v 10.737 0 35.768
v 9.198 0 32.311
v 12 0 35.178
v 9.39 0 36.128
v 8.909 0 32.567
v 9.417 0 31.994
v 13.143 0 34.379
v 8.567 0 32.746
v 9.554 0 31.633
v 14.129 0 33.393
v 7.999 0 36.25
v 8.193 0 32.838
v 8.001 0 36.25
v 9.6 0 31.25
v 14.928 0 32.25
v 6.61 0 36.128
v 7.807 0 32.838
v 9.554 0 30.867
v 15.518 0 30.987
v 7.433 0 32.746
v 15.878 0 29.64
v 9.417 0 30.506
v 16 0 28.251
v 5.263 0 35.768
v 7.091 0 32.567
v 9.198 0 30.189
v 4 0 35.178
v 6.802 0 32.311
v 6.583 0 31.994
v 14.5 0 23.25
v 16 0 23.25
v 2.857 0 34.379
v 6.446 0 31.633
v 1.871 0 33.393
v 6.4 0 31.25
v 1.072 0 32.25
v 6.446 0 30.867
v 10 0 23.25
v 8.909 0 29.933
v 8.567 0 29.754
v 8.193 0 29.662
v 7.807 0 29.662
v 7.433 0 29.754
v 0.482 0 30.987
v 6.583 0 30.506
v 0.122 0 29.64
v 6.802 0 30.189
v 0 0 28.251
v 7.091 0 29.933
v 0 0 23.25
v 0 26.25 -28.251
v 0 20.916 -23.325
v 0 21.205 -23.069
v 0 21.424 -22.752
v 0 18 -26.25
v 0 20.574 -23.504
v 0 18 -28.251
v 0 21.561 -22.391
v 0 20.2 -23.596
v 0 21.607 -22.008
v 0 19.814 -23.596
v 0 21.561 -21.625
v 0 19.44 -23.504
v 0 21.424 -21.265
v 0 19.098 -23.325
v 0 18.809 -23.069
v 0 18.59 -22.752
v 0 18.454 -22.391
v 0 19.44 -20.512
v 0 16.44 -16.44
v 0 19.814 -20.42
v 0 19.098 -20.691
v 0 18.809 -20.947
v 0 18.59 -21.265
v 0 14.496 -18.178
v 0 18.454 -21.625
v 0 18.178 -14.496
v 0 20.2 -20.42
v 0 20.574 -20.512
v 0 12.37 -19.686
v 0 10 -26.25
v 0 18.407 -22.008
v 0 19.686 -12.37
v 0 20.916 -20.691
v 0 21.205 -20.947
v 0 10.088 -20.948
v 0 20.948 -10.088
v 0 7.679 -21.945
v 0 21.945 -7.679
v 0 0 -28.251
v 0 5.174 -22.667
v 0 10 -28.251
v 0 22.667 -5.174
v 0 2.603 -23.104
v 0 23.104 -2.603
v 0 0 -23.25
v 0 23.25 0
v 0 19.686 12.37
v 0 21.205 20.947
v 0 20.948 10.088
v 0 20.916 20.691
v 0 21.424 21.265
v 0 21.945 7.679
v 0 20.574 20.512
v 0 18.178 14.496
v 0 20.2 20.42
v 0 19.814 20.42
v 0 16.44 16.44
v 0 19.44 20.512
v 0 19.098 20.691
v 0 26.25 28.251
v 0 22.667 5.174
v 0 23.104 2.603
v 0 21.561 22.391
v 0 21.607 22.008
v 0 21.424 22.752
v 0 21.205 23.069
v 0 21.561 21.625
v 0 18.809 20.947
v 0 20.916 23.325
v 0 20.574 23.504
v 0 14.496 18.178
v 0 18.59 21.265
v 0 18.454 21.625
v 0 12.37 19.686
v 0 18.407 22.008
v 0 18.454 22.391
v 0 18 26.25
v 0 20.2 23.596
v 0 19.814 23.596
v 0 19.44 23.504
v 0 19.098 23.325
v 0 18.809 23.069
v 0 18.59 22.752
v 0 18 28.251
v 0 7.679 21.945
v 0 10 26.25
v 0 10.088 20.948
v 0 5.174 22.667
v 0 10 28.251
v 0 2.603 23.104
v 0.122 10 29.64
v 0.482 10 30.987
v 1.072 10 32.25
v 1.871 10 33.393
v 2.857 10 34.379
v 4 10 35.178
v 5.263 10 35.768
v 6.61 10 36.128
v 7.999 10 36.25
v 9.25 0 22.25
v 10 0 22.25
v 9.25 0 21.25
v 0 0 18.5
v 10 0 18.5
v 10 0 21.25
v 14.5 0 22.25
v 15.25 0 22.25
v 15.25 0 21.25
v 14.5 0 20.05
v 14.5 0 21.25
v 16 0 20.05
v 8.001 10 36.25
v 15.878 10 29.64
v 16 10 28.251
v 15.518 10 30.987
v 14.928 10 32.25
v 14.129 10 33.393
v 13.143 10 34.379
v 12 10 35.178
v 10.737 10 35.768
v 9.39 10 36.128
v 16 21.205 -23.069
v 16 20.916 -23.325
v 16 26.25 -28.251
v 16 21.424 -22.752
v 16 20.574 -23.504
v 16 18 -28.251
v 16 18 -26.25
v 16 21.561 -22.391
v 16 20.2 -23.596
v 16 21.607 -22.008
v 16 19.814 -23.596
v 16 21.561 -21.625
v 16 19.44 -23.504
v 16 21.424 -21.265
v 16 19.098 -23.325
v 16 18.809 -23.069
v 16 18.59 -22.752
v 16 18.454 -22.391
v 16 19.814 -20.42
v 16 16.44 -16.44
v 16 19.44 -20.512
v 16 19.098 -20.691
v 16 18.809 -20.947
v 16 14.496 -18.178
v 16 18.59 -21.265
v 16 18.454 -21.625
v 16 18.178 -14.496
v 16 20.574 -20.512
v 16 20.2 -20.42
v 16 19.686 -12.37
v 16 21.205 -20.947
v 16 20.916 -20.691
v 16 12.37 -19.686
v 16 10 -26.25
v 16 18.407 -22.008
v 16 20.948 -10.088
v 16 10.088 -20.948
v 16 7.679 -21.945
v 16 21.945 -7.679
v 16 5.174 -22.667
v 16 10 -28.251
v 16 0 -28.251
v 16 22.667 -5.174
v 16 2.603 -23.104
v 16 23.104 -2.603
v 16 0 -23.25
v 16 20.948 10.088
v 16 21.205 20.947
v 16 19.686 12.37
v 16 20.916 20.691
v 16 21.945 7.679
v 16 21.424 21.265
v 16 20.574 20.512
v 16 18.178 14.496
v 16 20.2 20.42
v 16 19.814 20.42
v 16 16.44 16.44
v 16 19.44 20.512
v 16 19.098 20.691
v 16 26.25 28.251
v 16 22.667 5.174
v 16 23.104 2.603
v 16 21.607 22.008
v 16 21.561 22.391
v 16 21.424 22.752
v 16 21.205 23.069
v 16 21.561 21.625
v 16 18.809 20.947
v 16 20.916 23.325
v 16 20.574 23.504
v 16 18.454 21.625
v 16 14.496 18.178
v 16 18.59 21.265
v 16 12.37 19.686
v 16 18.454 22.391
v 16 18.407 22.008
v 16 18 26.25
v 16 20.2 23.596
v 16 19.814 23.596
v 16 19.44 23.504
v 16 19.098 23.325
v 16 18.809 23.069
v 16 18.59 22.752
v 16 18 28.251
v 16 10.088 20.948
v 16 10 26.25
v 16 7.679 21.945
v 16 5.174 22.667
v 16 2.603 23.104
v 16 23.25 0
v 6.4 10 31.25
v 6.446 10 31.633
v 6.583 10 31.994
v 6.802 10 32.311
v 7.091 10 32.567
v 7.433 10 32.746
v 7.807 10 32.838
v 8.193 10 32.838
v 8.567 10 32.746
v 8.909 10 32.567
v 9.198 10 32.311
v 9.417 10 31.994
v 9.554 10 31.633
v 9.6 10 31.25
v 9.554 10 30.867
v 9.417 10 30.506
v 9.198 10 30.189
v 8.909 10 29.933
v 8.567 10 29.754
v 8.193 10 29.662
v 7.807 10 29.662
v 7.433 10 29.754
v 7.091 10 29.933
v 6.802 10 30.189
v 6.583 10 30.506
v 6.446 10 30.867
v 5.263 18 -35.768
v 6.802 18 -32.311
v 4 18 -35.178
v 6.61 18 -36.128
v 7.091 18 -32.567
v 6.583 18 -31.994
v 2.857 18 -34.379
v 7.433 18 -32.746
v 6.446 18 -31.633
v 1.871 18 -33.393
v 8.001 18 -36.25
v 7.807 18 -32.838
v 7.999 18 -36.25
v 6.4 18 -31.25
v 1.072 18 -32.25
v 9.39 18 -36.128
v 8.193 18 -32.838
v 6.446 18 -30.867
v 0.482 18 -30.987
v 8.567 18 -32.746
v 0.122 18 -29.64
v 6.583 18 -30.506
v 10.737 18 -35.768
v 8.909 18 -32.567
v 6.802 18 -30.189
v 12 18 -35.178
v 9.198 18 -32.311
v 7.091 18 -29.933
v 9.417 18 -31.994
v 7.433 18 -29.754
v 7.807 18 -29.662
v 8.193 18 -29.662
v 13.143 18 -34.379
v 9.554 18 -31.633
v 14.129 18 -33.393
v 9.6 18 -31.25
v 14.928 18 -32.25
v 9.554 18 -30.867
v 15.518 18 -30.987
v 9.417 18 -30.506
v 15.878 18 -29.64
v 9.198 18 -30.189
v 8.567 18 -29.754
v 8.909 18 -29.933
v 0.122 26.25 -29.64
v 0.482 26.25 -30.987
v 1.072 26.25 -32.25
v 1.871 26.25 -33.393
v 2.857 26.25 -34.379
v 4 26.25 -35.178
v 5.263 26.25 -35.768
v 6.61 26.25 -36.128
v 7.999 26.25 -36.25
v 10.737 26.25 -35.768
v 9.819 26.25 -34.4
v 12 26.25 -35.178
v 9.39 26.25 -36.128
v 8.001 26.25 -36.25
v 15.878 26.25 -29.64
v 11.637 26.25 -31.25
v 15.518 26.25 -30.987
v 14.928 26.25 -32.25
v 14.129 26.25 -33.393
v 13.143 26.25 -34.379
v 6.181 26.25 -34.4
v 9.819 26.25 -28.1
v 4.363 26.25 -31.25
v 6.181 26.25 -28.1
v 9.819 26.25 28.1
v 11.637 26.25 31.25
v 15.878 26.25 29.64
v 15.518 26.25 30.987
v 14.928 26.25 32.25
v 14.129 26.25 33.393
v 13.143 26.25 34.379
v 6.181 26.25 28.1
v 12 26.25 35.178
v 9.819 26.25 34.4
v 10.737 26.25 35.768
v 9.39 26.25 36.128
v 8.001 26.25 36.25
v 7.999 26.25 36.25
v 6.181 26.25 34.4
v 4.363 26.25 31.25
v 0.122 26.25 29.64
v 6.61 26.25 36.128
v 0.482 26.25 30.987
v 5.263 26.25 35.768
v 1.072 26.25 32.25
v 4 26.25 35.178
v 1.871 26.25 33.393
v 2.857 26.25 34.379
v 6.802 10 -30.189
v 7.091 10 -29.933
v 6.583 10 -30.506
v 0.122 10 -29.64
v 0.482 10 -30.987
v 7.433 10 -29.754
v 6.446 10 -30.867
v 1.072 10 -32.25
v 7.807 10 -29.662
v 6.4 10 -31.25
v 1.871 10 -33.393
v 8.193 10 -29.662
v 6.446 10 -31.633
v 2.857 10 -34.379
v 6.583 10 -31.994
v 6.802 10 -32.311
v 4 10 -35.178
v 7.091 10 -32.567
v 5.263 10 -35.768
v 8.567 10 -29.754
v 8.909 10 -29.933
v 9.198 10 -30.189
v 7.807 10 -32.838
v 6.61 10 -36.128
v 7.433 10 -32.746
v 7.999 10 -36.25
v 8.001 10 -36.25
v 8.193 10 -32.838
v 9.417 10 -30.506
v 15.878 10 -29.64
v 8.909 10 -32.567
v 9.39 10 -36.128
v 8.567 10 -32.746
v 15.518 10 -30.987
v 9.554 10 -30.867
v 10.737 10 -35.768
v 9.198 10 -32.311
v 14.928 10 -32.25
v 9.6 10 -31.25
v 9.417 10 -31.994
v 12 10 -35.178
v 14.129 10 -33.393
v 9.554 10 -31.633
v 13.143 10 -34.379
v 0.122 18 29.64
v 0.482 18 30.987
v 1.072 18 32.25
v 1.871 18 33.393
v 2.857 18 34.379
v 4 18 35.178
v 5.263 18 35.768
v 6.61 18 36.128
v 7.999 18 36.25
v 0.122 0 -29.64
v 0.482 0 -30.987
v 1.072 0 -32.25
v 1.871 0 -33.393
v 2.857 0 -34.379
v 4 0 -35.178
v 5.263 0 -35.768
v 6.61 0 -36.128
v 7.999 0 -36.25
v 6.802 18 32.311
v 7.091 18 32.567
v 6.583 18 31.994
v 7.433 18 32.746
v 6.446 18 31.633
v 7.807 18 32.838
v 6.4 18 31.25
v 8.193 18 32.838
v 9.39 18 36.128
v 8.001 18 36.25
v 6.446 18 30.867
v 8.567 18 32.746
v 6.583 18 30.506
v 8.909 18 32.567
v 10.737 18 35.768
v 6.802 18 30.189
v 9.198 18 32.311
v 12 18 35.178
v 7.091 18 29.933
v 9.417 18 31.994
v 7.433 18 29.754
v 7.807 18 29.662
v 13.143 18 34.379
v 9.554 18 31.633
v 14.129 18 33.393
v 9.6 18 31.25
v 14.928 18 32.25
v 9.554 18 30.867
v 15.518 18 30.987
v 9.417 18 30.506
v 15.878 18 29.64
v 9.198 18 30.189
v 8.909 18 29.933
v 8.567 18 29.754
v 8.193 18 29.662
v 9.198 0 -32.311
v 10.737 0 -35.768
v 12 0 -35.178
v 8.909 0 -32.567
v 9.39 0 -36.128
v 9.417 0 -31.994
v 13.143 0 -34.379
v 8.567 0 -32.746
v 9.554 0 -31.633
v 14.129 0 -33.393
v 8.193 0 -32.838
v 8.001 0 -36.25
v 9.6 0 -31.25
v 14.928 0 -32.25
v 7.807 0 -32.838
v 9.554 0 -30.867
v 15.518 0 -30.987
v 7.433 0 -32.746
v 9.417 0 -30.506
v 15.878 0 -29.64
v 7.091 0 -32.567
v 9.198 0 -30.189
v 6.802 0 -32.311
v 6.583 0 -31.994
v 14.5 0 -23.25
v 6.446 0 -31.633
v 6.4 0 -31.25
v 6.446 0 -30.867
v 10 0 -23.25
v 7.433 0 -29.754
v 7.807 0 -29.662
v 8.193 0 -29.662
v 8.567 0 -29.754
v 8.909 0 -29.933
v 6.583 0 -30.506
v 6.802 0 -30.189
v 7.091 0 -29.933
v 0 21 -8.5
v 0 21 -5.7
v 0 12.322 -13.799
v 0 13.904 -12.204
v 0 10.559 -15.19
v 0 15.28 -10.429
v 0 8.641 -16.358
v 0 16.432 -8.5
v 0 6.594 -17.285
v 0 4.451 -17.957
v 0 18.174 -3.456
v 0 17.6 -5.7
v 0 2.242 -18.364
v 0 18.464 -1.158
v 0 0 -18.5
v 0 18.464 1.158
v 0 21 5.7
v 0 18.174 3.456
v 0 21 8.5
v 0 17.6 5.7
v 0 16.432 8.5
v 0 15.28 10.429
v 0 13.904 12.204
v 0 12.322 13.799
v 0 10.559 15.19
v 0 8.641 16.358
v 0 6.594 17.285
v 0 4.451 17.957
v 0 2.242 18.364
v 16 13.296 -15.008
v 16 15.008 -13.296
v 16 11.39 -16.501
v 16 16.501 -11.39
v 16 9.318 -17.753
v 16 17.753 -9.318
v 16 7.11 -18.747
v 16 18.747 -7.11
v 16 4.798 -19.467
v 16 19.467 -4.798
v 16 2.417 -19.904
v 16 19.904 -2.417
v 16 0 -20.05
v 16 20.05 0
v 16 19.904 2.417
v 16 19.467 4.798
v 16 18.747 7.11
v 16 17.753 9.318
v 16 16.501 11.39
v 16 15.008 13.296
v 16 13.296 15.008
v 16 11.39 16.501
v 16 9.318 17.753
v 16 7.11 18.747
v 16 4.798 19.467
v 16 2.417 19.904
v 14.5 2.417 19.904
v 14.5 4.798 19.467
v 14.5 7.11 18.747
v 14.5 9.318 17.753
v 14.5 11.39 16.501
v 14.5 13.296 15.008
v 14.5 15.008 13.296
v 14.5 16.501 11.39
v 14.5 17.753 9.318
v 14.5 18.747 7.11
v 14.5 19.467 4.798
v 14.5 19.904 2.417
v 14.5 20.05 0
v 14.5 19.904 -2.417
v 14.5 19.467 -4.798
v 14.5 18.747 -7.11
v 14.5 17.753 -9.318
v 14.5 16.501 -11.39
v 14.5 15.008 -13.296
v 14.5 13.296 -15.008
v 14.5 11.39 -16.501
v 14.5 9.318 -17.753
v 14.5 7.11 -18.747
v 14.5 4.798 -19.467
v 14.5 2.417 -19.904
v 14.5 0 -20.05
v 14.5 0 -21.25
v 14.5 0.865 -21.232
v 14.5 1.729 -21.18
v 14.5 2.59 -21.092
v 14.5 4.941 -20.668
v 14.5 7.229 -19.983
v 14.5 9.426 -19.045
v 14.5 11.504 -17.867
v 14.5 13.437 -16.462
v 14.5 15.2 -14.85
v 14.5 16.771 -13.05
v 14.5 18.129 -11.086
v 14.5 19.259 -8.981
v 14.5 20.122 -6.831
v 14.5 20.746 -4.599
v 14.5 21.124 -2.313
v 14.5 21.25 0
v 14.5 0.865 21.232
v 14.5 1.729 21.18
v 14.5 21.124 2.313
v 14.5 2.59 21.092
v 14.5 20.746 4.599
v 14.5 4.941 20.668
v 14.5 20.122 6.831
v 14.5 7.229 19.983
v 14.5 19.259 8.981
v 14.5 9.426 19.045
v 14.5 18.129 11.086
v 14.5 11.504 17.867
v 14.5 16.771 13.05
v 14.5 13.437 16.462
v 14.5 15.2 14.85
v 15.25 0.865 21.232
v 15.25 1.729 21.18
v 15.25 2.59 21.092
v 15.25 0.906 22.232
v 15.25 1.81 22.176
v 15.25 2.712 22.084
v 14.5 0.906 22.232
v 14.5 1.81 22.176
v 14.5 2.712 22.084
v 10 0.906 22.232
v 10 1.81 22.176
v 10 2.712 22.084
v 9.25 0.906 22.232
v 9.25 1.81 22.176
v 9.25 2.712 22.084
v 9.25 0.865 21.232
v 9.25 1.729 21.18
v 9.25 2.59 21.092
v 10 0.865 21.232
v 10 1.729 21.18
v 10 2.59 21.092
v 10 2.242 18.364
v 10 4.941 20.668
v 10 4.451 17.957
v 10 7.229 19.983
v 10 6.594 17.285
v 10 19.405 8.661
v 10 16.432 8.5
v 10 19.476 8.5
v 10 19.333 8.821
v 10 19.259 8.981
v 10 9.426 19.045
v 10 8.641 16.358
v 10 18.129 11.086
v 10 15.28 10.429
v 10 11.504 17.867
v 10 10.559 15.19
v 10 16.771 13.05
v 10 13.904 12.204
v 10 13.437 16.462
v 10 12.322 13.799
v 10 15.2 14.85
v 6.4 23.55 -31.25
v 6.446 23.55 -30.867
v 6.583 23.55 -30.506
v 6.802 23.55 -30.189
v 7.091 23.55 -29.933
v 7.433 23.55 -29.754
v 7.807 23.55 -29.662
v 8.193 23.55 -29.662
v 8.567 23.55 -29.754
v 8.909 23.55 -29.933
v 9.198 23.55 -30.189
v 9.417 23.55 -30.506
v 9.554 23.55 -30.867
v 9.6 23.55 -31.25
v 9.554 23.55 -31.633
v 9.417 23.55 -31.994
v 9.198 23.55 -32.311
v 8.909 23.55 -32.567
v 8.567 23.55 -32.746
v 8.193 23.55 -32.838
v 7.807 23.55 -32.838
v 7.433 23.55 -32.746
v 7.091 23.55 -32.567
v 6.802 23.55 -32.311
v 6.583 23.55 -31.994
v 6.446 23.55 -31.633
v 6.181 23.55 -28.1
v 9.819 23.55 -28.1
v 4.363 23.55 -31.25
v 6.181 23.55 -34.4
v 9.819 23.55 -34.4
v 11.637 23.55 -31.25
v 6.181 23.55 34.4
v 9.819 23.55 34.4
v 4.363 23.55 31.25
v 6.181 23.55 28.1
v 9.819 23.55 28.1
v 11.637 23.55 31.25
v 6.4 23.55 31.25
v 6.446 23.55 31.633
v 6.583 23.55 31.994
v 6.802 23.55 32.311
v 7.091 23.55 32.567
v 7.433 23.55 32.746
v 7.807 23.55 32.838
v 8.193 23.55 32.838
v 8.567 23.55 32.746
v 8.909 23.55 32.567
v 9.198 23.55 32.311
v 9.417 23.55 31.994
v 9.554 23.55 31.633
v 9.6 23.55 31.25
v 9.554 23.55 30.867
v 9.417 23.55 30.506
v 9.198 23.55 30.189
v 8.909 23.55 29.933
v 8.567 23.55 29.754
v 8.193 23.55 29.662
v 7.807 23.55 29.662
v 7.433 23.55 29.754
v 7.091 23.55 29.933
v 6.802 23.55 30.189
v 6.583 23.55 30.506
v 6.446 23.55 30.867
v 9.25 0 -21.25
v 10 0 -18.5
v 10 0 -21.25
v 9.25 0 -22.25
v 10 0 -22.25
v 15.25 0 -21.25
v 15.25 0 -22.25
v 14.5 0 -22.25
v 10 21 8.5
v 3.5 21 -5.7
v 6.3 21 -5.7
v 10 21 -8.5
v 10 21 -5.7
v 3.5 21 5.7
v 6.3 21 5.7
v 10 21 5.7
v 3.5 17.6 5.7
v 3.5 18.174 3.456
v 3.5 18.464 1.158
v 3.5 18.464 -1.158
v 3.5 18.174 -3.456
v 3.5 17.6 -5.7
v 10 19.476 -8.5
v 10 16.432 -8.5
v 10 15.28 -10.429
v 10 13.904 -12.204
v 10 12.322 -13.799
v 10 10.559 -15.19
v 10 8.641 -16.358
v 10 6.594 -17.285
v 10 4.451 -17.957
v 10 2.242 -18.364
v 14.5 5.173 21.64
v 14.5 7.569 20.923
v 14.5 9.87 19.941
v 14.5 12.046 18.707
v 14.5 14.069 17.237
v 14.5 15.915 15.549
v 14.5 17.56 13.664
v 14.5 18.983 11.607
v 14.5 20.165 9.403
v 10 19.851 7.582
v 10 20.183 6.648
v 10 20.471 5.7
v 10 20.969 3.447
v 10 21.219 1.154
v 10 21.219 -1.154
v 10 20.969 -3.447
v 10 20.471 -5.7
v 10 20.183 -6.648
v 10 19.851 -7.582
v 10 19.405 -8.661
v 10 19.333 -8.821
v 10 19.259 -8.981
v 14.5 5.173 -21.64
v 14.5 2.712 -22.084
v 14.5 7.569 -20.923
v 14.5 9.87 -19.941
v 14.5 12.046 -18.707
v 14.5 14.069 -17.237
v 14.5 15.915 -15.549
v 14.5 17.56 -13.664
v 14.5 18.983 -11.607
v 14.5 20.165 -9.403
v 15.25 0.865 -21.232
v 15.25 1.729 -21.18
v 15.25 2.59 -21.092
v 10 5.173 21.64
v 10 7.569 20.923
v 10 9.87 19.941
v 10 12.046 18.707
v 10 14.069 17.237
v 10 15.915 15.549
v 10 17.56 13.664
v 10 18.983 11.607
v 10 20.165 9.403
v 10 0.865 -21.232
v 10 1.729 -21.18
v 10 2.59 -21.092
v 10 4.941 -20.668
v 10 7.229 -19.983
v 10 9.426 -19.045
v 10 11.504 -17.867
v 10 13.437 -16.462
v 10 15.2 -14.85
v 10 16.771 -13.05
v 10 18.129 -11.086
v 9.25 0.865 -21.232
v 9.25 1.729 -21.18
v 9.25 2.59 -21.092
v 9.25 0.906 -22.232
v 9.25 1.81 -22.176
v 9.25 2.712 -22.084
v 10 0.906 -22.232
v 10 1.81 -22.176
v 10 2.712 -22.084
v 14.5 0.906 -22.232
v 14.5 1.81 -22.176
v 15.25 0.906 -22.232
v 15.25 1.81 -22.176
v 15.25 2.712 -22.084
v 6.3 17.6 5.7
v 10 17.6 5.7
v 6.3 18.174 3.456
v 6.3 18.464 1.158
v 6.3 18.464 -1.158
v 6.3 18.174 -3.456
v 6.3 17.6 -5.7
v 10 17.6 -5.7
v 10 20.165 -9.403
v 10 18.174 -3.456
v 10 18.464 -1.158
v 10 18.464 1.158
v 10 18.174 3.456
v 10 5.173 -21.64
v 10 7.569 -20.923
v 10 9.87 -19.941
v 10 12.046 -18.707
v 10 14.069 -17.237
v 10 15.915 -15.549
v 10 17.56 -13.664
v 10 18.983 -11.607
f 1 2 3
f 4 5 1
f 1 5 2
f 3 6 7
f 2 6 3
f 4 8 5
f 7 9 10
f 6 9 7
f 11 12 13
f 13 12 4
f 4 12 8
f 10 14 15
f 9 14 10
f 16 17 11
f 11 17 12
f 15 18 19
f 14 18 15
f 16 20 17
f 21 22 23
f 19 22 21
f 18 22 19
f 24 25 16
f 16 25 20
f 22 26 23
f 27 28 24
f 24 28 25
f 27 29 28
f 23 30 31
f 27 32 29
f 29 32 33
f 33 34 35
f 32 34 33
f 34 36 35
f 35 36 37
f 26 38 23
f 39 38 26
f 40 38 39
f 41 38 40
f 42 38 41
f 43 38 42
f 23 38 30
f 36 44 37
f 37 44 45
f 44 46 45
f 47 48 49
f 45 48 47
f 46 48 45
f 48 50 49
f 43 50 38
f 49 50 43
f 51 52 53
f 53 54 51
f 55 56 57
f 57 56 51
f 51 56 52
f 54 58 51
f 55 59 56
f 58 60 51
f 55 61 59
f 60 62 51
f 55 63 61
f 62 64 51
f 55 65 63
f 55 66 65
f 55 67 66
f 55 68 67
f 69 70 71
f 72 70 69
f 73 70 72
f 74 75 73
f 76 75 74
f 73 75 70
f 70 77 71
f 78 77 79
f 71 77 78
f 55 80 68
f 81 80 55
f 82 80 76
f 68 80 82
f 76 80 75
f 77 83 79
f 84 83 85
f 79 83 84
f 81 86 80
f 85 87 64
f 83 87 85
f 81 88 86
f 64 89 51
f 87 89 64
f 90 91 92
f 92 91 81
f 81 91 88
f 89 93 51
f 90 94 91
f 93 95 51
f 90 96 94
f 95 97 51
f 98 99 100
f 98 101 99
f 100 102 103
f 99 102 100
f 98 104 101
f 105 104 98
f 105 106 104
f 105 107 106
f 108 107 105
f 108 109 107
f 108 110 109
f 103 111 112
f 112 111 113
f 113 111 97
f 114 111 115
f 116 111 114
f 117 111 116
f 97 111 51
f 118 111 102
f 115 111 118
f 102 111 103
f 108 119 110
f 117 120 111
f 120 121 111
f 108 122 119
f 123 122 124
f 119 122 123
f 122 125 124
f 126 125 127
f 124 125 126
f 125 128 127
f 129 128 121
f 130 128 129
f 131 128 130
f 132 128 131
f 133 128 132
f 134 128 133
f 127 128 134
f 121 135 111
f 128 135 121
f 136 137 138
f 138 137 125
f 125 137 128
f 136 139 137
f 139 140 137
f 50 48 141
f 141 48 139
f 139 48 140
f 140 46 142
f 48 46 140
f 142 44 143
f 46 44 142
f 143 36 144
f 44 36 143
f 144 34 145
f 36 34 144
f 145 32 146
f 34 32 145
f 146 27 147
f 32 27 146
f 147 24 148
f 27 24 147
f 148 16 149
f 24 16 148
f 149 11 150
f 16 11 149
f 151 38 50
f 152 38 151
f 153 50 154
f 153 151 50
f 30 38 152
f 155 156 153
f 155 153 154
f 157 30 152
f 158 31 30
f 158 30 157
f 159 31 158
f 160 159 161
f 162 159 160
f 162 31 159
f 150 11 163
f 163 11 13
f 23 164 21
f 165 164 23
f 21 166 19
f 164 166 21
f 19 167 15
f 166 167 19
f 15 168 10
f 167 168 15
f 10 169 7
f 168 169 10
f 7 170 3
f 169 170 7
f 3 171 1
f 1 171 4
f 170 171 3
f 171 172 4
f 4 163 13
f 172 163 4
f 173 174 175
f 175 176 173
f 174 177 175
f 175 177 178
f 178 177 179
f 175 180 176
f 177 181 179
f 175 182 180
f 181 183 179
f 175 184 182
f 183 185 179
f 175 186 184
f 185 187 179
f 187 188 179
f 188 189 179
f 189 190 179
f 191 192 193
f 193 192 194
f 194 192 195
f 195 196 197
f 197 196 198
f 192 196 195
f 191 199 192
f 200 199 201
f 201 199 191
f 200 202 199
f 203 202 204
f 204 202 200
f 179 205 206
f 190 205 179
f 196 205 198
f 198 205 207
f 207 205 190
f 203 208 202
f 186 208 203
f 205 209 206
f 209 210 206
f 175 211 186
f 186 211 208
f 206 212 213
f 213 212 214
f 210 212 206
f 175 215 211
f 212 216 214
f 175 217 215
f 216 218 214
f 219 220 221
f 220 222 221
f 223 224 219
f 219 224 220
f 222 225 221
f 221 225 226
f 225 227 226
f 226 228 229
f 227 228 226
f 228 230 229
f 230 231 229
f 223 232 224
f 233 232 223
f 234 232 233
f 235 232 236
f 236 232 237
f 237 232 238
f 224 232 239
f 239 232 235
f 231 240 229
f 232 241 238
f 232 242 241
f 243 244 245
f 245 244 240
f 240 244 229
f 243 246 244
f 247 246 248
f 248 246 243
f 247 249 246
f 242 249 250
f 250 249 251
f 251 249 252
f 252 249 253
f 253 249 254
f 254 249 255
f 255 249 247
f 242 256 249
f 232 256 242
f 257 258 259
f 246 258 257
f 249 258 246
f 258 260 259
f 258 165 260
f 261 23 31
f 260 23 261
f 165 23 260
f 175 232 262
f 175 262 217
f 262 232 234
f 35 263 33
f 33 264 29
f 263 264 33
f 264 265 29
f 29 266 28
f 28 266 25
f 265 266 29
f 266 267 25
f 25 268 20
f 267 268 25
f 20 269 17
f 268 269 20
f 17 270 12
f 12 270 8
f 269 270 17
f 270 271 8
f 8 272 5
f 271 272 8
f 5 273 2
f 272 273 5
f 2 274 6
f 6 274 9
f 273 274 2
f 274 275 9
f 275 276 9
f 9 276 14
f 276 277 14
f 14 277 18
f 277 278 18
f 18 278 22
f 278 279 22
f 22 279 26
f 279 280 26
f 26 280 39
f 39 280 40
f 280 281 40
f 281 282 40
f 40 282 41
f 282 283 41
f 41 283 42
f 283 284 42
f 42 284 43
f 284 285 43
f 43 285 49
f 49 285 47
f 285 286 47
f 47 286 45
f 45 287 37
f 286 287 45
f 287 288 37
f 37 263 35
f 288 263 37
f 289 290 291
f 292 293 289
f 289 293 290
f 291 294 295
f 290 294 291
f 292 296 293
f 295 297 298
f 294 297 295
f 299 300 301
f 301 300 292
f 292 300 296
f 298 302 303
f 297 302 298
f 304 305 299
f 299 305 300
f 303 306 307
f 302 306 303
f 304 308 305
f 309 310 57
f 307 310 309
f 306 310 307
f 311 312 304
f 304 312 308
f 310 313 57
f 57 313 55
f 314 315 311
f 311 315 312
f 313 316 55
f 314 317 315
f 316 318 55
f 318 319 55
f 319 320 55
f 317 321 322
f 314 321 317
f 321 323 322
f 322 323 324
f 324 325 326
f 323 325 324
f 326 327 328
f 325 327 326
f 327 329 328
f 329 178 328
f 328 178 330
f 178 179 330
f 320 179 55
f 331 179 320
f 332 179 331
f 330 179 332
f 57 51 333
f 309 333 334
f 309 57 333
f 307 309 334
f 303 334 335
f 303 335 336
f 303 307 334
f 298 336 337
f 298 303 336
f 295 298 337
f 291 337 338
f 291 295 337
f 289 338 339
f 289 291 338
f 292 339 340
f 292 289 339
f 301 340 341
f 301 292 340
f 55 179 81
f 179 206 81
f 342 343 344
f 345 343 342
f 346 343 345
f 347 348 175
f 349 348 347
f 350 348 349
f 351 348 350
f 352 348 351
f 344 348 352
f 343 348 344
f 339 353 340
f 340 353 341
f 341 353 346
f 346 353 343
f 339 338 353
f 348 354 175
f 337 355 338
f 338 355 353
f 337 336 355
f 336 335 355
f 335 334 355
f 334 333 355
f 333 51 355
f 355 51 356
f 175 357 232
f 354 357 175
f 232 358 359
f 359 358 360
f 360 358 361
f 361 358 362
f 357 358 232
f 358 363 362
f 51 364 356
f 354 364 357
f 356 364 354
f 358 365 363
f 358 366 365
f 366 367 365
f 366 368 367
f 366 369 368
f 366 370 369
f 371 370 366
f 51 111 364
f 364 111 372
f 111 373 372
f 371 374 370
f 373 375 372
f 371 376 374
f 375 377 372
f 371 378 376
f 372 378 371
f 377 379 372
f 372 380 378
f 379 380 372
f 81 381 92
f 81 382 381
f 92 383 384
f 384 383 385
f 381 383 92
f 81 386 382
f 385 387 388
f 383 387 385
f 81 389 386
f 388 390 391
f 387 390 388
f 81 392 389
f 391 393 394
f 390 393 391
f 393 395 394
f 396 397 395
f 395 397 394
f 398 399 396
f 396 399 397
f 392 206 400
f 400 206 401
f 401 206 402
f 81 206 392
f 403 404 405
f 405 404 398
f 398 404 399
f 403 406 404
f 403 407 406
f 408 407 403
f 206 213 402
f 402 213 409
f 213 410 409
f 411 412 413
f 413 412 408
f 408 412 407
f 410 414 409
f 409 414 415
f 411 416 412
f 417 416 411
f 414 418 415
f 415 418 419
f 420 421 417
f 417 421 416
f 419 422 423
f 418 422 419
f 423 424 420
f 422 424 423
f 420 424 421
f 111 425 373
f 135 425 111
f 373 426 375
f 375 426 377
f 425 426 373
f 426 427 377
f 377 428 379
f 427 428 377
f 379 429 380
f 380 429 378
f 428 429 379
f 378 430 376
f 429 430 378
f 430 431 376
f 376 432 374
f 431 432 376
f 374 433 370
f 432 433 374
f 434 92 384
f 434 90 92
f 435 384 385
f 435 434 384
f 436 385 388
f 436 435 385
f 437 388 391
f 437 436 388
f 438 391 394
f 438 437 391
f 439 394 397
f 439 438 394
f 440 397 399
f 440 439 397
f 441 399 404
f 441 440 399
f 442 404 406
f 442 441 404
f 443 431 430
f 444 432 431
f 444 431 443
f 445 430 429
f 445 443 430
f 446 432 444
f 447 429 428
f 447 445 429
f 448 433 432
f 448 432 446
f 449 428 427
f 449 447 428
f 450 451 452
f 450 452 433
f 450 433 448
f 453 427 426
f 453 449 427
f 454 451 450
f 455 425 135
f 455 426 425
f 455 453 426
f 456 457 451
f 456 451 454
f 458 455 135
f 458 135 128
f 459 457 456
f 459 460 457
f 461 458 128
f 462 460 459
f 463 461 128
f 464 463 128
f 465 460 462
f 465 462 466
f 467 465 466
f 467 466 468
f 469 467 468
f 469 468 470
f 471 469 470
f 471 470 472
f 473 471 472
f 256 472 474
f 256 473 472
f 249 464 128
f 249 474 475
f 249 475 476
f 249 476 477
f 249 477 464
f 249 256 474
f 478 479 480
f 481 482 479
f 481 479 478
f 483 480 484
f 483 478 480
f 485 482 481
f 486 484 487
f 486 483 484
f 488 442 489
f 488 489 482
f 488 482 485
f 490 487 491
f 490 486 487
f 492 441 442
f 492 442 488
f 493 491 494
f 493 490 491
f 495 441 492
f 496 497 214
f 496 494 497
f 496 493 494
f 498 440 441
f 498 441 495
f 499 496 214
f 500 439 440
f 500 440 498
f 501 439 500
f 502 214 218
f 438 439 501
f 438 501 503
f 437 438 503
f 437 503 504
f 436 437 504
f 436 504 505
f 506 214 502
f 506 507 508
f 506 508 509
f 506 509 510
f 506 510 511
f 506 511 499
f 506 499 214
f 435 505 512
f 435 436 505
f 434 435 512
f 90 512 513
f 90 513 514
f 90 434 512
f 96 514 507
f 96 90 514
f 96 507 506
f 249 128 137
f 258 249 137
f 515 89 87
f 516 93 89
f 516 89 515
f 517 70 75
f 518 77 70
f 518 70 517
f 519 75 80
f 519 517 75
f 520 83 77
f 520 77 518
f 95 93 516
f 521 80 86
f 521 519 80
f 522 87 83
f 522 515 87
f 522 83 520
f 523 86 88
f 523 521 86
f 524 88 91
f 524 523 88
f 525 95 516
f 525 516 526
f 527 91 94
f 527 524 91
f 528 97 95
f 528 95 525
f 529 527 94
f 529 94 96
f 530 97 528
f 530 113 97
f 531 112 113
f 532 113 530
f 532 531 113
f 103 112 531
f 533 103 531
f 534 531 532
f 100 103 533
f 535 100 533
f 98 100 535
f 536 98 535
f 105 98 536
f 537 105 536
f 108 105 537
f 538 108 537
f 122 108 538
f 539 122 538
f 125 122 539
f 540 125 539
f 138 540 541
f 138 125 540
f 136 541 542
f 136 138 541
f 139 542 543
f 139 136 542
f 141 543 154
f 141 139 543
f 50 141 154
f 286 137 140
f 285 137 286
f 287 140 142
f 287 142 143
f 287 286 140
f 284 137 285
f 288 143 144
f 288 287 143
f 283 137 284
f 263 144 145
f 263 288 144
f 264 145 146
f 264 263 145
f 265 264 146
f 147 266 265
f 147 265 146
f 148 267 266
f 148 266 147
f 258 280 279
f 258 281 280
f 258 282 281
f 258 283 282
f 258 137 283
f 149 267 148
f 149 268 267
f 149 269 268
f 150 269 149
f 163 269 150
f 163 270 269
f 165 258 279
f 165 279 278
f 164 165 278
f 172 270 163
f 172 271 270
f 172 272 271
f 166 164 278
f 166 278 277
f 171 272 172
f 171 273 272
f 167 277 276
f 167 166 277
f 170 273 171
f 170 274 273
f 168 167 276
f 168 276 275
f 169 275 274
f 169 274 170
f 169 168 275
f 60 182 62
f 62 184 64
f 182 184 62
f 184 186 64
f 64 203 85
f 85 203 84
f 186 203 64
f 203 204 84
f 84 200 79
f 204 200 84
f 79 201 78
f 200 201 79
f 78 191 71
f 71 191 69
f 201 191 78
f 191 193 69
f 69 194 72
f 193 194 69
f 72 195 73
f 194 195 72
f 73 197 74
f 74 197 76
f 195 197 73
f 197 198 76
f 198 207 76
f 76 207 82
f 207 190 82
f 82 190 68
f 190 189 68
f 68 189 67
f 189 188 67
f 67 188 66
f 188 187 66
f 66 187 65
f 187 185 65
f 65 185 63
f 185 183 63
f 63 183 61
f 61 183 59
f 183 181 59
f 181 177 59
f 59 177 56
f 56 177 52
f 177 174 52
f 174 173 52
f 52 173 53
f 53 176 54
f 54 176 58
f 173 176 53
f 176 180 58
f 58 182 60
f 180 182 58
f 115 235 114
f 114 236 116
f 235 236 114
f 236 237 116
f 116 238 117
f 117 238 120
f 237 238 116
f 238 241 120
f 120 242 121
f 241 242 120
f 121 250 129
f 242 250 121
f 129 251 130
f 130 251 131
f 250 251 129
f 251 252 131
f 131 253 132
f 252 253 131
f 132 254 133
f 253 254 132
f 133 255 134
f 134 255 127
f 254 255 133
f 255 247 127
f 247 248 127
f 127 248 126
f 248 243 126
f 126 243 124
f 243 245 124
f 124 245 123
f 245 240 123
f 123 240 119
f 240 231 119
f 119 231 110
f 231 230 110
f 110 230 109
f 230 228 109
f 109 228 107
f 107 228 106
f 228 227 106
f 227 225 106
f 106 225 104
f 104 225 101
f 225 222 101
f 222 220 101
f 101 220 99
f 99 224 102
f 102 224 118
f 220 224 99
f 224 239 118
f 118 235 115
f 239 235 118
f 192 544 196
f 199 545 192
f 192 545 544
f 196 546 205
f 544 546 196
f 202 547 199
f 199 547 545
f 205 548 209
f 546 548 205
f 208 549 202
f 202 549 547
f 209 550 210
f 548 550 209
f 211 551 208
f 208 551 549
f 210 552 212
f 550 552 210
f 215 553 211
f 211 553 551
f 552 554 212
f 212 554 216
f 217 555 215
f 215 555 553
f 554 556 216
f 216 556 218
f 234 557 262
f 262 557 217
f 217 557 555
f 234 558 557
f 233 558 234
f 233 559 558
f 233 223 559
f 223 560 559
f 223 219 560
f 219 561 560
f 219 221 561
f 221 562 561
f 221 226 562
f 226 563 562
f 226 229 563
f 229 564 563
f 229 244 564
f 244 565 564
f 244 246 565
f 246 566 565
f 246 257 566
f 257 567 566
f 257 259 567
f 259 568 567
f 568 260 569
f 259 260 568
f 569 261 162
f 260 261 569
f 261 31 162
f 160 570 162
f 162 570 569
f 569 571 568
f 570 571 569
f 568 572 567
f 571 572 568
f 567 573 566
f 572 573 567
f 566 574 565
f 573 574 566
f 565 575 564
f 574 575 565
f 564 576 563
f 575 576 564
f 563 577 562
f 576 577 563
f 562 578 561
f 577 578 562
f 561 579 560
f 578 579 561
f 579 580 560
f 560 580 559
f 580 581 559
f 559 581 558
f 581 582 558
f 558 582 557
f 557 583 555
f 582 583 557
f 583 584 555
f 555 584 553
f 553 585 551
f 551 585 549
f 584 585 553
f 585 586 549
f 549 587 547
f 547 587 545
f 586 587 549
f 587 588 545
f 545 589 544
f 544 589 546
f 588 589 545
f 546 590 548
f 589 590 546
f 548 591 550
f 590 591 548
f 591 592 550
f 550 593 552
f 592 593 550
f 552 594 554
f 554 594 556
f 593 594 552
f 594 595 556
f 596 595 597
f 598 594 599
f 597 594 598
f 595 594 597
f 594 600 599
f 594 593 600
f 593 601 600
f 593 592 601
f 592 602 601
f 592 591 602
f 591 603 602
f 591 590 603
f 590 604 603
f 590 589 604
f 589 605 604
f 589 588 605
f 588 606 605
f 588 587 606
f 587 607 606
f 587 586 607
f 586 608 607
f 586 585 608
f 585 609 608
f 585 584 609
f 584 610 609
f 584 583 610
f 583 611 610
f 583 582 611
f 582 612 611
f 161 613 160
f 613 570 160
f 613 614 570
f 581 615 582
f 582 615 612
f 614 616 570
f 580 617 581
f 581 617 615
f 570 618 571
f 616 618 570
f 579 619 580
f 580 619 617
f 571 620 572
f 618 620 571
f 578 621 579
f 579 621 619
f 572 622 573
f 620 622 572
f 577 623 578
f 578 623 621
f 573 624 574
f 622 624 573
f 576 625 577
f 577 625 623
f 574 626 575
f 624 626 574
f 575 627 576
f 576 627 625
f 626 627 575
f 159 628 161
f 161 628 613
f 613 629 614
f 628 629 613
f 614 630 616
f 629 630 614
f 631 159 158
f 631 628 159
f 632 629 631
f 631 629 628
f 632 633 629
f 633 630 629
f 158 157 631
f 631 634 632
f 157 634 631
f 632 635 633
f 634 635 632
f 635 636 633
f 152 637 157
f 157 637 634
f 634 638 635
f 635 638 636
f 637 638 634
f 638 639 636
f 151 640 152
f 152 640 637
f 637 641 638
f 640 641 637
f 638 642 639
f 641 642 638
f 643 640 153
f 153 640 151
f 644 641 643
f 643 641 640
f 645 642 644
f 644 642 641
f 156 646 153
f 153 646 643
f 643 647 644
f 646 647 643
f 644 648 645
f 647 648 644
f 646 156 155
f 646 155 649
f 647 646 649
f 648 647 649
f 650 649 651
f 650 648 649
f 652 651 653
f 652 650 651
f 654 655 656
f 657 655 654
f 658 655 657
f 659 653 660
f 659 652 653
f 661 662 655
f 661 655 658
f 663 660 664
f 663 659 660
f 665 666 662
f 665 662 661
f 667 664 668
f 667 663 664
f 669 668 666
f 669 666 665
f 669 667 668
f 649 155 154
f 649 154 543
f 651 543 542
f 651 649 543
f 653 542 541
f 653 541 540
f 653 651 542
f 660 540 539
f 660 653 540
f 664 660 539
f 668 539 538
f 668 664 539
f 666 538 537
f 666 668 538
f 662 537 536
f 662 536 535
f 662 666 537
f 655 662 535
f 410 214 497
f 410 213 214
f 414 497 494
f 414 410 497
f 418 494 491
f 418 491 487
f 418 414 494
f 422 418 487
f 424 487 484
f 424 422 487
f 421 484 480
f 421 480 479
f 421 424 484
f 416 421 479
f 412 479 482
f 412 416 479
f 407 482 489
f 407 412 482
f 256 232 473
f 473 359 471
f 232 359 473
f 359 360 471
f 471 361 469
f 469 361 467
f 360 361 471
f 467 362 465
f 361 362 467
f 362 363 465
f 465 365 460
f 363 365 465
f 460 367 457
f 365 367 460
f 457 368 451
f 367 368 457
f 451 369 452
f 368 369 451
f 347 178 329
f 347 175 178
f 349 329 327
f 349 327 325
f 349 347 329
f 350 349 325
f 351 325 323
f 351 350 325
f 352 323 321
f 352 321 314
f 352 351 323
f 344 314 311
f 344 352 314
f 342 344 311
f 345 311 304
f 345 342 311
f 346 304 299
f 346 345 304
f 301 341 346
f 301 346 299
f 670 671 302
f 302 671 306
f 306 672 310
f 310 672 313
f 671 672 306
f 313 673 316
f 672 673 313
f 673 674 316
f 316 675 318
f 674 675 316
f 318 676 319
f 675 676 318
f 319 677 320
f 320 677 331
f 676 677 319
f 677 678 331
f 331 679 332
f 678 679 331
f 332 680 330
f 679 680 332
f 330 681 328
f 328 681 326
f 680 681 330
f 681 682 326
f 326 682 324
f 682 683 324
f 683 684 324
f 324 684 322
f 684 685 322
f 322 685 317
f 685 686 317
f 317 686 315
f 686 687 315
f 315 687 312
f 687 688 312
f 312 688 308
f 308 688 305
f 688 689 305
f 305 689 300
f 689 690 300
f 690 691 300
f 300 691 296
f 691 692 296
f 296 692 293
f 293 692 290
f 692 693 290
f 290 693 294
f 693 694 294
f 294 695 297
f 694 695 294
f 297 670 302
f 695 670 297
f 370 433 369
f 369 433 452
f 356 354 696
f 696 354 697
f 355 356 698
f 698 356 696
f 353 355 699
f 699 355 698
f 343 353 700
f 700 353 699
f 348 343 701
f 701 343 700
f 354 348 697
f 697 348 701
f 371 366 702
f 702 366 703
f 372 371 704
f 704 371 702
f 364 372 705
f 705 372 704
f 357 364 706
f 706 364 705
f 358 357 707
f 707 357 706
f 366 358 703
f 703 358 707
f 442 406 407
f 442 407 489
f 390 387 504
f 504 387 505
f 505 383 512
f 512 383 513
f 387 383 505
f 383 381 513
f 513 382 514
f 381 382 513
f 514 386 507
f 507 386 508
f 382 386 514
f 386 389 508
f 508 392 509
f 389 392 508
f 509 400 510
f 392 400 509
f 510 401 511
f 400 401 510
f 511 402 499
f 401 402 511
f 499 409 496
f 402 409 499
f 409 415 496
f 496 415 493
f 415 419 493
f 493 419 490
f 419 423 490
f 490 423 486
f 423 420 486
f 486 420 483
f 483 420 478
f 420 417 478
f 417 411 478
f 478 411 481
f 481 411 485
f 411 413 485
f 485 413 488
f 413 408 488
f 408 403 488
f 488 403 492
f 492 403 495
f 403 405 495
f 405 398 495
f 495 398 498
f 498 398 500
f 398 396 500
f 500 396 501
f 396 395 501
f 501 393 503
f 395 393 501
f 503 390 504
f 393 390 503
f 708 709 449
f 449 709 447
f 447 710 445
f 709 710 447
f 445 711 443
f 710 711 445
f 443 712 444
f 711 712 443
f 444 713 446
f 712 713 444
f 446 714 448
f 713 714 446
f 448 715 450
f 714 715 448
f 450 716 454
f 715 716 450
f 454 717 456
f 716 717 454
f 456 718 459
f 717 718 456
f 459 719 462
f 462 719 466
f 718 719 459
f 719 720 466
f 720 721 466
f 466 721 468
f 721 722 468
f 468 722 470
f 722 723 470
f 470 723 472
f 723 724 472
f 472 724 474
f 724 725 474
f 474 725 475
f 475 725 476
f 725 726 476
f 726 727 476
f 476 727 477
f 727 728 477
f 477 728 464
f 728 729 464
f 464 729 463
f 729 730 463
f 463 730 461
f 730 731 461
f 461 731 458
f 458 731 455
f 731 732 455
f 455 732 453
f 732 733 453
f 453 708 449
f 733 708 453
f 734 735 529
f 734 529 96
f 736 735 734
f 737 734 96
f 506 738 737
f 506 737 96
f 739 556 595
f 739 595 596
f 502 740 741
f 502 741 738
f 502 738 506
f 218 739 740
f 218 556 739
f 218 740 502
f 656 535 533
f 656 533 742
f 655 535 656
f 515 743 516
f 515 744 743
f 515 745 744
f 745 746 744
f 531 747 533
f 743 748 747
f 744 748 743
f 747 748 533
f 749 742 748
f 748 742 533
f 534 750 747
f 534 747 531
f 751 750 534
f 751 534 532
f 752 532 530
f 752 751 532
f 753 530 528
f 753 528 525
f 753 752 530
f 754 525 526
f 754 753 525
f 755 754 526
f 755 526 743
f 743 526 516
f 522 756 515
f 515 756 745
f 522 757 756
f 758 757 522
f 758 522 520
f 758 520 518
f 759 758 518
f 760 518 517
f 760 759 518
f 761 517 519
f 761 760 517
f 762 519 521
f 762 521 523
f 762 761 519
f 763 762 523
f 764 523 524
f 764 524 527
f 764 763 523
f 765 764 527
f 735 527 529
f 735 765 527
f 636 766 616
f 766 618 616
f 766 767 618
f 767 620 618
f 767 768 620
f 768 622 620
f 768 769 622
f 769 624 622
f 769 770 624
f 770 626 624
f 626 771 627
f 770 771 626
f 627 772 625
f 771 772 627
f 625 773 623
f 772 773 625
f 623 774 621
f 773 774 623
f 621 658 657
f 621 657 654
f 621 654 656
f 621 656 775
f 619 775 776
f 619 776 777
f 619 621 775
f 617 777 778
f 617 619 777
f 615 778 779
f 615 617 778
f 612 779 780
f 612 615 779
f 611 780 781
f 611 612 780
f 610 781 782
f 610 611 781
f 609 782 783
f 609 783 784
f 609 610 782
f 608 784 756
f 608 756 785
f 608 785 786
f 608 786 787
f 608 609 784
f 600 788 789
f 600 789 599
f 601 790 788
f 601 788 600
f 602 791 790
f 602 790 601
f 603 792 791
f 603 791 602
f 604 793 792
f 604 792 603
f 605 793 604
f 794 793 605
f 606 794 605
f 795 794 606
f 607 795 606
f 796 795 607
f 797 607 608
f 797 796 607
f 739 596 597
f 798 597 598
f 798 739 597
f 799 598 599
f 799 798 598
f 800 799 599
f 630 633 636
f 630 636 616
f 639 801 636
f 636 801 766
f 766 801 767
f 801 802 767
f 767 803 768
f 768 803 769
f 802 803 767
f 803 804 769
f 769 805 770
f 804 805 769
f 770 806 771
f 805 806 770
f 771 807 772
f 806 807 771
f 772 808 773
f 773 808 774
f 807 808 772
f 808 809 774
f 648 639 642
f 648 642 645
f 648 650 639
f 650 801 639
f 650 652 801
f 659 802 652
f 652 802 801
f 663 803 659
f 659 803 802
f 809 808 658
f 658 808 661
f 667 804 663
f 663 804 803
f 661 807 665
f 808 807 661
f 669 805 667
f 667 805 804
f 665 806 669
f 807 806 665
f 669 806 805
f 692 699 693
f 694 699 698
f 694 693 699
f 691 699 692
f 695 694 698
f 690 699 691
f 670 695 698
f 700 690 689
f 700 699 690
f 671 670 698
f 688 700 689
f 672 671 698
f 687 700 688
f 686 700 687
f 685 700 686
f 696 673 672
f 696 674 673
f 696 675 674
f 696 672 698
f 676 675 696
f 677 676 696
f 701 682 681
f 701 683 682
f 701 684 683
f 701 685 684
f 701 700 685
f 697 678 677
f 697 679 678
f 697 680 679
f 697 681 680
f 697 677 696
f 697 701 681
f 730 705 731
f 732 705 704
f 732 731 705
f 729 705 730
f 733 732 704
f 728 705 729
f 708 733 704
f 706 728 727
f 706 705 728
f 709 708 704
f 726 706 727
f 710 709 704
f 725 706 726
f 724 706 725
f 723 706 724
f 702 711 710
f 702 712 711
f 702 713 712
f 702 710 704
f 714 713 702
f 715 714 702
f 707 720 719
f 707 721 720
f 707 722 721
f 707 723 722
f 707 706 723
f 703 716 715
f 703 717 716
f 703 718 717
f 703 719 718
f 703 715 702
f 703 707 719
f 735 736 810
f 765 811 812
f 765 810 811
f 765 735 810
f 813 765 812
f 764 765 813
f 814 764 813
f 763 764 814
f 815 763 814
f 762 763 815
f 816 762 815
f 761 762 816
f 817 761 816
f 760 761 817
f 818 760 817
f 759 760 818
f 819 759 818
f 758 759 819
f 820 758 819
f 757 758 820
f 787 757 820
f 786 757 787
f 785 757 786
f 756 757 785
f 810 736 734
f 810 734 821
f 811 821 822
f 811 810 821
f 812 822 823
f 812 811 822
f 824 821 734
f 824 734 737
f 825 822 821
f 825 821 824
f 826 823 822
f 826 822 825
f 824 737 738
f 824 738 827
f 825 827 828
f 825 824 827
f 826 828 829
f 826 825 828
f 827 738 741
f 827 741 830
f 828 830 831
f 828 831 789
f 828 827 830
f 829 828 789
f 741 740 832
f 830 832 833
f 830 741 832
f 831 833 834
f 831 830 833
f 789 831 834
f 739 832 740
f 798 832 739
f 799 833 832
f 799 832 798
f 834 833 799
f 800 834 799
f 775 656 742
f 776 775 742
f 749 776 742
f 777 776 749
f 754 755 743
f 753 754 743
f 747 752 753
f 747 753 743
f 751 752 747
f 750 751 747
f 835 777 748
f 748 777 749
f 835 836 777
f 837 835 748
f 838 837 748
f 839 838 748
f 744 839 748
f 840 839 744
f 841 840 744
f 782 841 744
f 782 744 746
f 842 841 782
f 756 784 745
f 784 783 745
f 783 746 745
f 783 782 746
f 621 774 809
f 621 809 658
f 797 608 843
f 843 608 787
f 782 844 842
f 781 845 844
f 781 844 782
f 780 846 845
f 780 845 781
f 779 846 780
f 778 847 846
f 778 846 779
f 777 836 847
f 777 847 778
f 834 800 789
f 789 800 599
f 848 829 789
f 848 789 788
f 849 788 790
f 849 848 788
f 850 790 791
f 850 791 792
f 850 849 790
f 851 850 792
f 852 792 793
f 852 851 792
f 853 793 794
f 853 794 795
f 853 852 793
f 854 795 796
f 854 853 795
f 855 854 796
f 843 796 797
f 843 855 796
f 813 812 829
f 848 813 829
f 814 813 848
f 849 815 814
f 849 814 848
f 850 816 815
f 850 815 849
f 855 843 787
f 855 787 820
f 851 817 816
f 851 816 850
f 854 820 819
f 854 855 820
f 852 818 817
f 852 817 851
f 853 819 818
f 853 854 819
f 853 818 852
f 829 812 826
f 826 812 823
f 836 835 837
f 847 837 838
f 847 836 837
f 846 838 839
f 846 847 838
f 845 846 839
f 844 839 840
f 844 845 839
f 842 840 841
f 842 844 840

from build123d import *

# Parameters (mm, degrees)
SKETCH001_W     = 23.25
SKETCH001_H     = 46.5
POCKET_DEPTH    = 16.001
POCKET001_DEPTH = 21
SKETCH003_W     = 4.5
SKETCH003_H     = 1
GROOVE_ANGLE    = 65
SKETCH004_W     = 6
SKETCH004_H     = 1
GROOVE001_ANGLE = 7
PAD_DEPTH       = 16
SKETCH006_W     = 8
SKETCH006_H     = 10
POCKET002_DEPTH = 16.001
SKETCH007_R     = 1.6
POCKET003_DEPTH = 26.251
POCKET004_DEPTH = 2.7
FILLET_R        = 7.999
SKETCH009_R     = 1.6
POCKET005_DEPTH = 16.001


with BuildPart() as part:
    # Sketch → Revolution (revolve)
    with BuildSketch(Plane.XY):
        Polygon((0, -18.5), (10, -18.5), (10, -21.25), (14.5, -21.25), (14.5, -20.05), (16, -20.05), (16, -23.25), (14.5, -23.25), (10, -23.25), (0, -23.25), align=None)
    revolve(axis=Axis((0, 0, 0), (1, 0, 0)))

    # Sketch001 (on Face9 of Revolution) → Pocket (cut, through all)
    with BuildSketch(Plane.YZ.offset(16)):
        with Locations((-11.625, 0)):
            Rectangle(SKETCH001_W, SKETCH001_H)
    extrude(amount=-POCKET_DEPTH, mode=Mode.SUBTRACT)

    # Sketch002 (on Face2 of Pocket) → Pocket001 (cut)
    with BuildSketch(Plane.XZ):
        Polygon((0, 8.5), (10, 8.5), (10, 5.7), (6.3, 5.7), (6.3, -5.7), (10, -5.7), (10, -8.5), (0, -8.5), (0, -5.7), (3.5, -5.7), (3.5, 5.7), (0, 5.7), align=None)
    extrude(amount=-POCKET001_DEPTH, mode=Mode.SUBTRACT)

    # Sketch003 (on Face4 of Pocket001) → Groove (revolve, cut)
    with BuildSketch(Plane.XZ):
        with Locations((12.25, -21.75)):
            Rectangle(SKETCH003_W, SKETCH003_H)
    groove = revolve(axis=Axis((0, 0, 0), (1, 0, 0)), revolution_arc=GROOVE_ANGLE, mode=Mode.SUBTRACT)

    # Sketch004 (on Face4 of Groove) → Groove001 (revolve, cut)
    with BuildSketch(Plane.XZ):
        with Locations((12.25, -21.75)):
            Rectangle(SKETCH004_W, SKETCH004_H)
    groove001 = revolve(axis=Axis((0, 0, 0), (1, 0, 0)), revolution_arc=GROOVE001_ANGLE, mode=Mode.SUBTRACT)

    # Sketch005 (on Face12 of Groove001) → Pad (join)
    with BuildSketch(Plane(origin=(0, 0, 0), x_dir=(0, -1, 0), z_dir=(-1, 0, 0))):
        with BuildLine():
            ThreePointArc((0, 23.25), (-23.25, 0), (0, -23.25))
            Line((0, -36.25), (0, -23.25))
            Line((-26.25, -36.25), (0, -36.25))
            Line((-26.25, -36.25), (-26.25, 36.25))
            Line((-26.25, 36.25), (0, 36.25))
            Line((0, 36.25), (0, 23.25))
        make_face()
    extrude(amount=-PAD_DEPTH)

    # Sketch006 (on Face11 of Pad) → Pocket002 (cut, through all)
    with BuildSketch(Plane.YZ.offset(16)):
        with Locations((14, 31.25)):
            Rectangle(SKETCH006_W, SKETCH006_H)
        with Locations((14, -31.25)):
            Rectangle(SKETCH006_W, SKETCH006_H)
    extrude(amount=-POCKET002_DEPTH, mode=Mode.SUBTRACT)

    # Sketch007 (on Face40 of Pocket002) → Pocket003 (cut, through all)
    with BuildSketch(Plane(origin=(0, 26.25, 0), x_dir=(-1, 0, 0), z_dir=(0, 1, 0))):
        with Locations((-8, 31.25)):
            Circle(SKETCH007_R)
        with Locations((-8, -31.25)):
            Circle(SKETCH007_R)
    extrude(amount=-POCKET003_DEPTH, mode=Mode.SUBTRACT)

    # Sketch008 (on Face41 of Pocket003) → Pocket004 (cut)
    with BuildSketch(Plane(origin=(0, 26.25, 0), x_dir=(-1, 0, 0), z_dir=(0, 1, 0))):
        Polygon((-9.818653, 34.4), (-11.637307, 31.25), (-9.818653, 28.1), (-6.181347, 28.1), (-4.362693, 31.25), (-6.181347, 34.4), align=None)
        Polygon((-9.818653, -28.1), (-11.637307, -31.25), (-9.818653, -34.4), (-6.181347, -34.4), (-4.362693, -31.25), (-6.181347, -28.1), align=None)
    extrude(amount=-POCKET004_DEPTH, mode=Mode.SUBTRACT)

    # Mirrored: Groove001, Groove across XY
    add(groove001.mirror(Plane.XY), mode=Mode.SUBTRACT)
    add(groove.mirror(Plane.XY), mode=Mode.SUBTRACT)

    # Fillet
    fillet_edges = [part.edges().sort_by_distance(p)[0] for p in [
        (0, 22.125, 36.25),
        (0, 5, 36.25),
        (16, 5, 36.25),
        (16, 22.125, 36.25),
        (0, 22.125, -36.25),
        (0, 5, -36.25),
        (16, 22.125, -36.25),
        (16, 5, -36.25),
    ]]
    fillet(fillet_edges, radius=FILLET_R)

    # Sketch009 (on Face7 of Fillet) → Pocket005 (cut, through all)
    with BuildSketch(Plane.YZ.offset(16)):
        with Locations((20.007097, 22.008097)):
            Circle(SKETCH009_R)
        with Locations((20.007097, -22.008097)):
            Circle(SKETCH009_R)
    extrude(amount=-POCKET005_DEPTH, mode=Mode.SUBTRACT)


solid = part.part
